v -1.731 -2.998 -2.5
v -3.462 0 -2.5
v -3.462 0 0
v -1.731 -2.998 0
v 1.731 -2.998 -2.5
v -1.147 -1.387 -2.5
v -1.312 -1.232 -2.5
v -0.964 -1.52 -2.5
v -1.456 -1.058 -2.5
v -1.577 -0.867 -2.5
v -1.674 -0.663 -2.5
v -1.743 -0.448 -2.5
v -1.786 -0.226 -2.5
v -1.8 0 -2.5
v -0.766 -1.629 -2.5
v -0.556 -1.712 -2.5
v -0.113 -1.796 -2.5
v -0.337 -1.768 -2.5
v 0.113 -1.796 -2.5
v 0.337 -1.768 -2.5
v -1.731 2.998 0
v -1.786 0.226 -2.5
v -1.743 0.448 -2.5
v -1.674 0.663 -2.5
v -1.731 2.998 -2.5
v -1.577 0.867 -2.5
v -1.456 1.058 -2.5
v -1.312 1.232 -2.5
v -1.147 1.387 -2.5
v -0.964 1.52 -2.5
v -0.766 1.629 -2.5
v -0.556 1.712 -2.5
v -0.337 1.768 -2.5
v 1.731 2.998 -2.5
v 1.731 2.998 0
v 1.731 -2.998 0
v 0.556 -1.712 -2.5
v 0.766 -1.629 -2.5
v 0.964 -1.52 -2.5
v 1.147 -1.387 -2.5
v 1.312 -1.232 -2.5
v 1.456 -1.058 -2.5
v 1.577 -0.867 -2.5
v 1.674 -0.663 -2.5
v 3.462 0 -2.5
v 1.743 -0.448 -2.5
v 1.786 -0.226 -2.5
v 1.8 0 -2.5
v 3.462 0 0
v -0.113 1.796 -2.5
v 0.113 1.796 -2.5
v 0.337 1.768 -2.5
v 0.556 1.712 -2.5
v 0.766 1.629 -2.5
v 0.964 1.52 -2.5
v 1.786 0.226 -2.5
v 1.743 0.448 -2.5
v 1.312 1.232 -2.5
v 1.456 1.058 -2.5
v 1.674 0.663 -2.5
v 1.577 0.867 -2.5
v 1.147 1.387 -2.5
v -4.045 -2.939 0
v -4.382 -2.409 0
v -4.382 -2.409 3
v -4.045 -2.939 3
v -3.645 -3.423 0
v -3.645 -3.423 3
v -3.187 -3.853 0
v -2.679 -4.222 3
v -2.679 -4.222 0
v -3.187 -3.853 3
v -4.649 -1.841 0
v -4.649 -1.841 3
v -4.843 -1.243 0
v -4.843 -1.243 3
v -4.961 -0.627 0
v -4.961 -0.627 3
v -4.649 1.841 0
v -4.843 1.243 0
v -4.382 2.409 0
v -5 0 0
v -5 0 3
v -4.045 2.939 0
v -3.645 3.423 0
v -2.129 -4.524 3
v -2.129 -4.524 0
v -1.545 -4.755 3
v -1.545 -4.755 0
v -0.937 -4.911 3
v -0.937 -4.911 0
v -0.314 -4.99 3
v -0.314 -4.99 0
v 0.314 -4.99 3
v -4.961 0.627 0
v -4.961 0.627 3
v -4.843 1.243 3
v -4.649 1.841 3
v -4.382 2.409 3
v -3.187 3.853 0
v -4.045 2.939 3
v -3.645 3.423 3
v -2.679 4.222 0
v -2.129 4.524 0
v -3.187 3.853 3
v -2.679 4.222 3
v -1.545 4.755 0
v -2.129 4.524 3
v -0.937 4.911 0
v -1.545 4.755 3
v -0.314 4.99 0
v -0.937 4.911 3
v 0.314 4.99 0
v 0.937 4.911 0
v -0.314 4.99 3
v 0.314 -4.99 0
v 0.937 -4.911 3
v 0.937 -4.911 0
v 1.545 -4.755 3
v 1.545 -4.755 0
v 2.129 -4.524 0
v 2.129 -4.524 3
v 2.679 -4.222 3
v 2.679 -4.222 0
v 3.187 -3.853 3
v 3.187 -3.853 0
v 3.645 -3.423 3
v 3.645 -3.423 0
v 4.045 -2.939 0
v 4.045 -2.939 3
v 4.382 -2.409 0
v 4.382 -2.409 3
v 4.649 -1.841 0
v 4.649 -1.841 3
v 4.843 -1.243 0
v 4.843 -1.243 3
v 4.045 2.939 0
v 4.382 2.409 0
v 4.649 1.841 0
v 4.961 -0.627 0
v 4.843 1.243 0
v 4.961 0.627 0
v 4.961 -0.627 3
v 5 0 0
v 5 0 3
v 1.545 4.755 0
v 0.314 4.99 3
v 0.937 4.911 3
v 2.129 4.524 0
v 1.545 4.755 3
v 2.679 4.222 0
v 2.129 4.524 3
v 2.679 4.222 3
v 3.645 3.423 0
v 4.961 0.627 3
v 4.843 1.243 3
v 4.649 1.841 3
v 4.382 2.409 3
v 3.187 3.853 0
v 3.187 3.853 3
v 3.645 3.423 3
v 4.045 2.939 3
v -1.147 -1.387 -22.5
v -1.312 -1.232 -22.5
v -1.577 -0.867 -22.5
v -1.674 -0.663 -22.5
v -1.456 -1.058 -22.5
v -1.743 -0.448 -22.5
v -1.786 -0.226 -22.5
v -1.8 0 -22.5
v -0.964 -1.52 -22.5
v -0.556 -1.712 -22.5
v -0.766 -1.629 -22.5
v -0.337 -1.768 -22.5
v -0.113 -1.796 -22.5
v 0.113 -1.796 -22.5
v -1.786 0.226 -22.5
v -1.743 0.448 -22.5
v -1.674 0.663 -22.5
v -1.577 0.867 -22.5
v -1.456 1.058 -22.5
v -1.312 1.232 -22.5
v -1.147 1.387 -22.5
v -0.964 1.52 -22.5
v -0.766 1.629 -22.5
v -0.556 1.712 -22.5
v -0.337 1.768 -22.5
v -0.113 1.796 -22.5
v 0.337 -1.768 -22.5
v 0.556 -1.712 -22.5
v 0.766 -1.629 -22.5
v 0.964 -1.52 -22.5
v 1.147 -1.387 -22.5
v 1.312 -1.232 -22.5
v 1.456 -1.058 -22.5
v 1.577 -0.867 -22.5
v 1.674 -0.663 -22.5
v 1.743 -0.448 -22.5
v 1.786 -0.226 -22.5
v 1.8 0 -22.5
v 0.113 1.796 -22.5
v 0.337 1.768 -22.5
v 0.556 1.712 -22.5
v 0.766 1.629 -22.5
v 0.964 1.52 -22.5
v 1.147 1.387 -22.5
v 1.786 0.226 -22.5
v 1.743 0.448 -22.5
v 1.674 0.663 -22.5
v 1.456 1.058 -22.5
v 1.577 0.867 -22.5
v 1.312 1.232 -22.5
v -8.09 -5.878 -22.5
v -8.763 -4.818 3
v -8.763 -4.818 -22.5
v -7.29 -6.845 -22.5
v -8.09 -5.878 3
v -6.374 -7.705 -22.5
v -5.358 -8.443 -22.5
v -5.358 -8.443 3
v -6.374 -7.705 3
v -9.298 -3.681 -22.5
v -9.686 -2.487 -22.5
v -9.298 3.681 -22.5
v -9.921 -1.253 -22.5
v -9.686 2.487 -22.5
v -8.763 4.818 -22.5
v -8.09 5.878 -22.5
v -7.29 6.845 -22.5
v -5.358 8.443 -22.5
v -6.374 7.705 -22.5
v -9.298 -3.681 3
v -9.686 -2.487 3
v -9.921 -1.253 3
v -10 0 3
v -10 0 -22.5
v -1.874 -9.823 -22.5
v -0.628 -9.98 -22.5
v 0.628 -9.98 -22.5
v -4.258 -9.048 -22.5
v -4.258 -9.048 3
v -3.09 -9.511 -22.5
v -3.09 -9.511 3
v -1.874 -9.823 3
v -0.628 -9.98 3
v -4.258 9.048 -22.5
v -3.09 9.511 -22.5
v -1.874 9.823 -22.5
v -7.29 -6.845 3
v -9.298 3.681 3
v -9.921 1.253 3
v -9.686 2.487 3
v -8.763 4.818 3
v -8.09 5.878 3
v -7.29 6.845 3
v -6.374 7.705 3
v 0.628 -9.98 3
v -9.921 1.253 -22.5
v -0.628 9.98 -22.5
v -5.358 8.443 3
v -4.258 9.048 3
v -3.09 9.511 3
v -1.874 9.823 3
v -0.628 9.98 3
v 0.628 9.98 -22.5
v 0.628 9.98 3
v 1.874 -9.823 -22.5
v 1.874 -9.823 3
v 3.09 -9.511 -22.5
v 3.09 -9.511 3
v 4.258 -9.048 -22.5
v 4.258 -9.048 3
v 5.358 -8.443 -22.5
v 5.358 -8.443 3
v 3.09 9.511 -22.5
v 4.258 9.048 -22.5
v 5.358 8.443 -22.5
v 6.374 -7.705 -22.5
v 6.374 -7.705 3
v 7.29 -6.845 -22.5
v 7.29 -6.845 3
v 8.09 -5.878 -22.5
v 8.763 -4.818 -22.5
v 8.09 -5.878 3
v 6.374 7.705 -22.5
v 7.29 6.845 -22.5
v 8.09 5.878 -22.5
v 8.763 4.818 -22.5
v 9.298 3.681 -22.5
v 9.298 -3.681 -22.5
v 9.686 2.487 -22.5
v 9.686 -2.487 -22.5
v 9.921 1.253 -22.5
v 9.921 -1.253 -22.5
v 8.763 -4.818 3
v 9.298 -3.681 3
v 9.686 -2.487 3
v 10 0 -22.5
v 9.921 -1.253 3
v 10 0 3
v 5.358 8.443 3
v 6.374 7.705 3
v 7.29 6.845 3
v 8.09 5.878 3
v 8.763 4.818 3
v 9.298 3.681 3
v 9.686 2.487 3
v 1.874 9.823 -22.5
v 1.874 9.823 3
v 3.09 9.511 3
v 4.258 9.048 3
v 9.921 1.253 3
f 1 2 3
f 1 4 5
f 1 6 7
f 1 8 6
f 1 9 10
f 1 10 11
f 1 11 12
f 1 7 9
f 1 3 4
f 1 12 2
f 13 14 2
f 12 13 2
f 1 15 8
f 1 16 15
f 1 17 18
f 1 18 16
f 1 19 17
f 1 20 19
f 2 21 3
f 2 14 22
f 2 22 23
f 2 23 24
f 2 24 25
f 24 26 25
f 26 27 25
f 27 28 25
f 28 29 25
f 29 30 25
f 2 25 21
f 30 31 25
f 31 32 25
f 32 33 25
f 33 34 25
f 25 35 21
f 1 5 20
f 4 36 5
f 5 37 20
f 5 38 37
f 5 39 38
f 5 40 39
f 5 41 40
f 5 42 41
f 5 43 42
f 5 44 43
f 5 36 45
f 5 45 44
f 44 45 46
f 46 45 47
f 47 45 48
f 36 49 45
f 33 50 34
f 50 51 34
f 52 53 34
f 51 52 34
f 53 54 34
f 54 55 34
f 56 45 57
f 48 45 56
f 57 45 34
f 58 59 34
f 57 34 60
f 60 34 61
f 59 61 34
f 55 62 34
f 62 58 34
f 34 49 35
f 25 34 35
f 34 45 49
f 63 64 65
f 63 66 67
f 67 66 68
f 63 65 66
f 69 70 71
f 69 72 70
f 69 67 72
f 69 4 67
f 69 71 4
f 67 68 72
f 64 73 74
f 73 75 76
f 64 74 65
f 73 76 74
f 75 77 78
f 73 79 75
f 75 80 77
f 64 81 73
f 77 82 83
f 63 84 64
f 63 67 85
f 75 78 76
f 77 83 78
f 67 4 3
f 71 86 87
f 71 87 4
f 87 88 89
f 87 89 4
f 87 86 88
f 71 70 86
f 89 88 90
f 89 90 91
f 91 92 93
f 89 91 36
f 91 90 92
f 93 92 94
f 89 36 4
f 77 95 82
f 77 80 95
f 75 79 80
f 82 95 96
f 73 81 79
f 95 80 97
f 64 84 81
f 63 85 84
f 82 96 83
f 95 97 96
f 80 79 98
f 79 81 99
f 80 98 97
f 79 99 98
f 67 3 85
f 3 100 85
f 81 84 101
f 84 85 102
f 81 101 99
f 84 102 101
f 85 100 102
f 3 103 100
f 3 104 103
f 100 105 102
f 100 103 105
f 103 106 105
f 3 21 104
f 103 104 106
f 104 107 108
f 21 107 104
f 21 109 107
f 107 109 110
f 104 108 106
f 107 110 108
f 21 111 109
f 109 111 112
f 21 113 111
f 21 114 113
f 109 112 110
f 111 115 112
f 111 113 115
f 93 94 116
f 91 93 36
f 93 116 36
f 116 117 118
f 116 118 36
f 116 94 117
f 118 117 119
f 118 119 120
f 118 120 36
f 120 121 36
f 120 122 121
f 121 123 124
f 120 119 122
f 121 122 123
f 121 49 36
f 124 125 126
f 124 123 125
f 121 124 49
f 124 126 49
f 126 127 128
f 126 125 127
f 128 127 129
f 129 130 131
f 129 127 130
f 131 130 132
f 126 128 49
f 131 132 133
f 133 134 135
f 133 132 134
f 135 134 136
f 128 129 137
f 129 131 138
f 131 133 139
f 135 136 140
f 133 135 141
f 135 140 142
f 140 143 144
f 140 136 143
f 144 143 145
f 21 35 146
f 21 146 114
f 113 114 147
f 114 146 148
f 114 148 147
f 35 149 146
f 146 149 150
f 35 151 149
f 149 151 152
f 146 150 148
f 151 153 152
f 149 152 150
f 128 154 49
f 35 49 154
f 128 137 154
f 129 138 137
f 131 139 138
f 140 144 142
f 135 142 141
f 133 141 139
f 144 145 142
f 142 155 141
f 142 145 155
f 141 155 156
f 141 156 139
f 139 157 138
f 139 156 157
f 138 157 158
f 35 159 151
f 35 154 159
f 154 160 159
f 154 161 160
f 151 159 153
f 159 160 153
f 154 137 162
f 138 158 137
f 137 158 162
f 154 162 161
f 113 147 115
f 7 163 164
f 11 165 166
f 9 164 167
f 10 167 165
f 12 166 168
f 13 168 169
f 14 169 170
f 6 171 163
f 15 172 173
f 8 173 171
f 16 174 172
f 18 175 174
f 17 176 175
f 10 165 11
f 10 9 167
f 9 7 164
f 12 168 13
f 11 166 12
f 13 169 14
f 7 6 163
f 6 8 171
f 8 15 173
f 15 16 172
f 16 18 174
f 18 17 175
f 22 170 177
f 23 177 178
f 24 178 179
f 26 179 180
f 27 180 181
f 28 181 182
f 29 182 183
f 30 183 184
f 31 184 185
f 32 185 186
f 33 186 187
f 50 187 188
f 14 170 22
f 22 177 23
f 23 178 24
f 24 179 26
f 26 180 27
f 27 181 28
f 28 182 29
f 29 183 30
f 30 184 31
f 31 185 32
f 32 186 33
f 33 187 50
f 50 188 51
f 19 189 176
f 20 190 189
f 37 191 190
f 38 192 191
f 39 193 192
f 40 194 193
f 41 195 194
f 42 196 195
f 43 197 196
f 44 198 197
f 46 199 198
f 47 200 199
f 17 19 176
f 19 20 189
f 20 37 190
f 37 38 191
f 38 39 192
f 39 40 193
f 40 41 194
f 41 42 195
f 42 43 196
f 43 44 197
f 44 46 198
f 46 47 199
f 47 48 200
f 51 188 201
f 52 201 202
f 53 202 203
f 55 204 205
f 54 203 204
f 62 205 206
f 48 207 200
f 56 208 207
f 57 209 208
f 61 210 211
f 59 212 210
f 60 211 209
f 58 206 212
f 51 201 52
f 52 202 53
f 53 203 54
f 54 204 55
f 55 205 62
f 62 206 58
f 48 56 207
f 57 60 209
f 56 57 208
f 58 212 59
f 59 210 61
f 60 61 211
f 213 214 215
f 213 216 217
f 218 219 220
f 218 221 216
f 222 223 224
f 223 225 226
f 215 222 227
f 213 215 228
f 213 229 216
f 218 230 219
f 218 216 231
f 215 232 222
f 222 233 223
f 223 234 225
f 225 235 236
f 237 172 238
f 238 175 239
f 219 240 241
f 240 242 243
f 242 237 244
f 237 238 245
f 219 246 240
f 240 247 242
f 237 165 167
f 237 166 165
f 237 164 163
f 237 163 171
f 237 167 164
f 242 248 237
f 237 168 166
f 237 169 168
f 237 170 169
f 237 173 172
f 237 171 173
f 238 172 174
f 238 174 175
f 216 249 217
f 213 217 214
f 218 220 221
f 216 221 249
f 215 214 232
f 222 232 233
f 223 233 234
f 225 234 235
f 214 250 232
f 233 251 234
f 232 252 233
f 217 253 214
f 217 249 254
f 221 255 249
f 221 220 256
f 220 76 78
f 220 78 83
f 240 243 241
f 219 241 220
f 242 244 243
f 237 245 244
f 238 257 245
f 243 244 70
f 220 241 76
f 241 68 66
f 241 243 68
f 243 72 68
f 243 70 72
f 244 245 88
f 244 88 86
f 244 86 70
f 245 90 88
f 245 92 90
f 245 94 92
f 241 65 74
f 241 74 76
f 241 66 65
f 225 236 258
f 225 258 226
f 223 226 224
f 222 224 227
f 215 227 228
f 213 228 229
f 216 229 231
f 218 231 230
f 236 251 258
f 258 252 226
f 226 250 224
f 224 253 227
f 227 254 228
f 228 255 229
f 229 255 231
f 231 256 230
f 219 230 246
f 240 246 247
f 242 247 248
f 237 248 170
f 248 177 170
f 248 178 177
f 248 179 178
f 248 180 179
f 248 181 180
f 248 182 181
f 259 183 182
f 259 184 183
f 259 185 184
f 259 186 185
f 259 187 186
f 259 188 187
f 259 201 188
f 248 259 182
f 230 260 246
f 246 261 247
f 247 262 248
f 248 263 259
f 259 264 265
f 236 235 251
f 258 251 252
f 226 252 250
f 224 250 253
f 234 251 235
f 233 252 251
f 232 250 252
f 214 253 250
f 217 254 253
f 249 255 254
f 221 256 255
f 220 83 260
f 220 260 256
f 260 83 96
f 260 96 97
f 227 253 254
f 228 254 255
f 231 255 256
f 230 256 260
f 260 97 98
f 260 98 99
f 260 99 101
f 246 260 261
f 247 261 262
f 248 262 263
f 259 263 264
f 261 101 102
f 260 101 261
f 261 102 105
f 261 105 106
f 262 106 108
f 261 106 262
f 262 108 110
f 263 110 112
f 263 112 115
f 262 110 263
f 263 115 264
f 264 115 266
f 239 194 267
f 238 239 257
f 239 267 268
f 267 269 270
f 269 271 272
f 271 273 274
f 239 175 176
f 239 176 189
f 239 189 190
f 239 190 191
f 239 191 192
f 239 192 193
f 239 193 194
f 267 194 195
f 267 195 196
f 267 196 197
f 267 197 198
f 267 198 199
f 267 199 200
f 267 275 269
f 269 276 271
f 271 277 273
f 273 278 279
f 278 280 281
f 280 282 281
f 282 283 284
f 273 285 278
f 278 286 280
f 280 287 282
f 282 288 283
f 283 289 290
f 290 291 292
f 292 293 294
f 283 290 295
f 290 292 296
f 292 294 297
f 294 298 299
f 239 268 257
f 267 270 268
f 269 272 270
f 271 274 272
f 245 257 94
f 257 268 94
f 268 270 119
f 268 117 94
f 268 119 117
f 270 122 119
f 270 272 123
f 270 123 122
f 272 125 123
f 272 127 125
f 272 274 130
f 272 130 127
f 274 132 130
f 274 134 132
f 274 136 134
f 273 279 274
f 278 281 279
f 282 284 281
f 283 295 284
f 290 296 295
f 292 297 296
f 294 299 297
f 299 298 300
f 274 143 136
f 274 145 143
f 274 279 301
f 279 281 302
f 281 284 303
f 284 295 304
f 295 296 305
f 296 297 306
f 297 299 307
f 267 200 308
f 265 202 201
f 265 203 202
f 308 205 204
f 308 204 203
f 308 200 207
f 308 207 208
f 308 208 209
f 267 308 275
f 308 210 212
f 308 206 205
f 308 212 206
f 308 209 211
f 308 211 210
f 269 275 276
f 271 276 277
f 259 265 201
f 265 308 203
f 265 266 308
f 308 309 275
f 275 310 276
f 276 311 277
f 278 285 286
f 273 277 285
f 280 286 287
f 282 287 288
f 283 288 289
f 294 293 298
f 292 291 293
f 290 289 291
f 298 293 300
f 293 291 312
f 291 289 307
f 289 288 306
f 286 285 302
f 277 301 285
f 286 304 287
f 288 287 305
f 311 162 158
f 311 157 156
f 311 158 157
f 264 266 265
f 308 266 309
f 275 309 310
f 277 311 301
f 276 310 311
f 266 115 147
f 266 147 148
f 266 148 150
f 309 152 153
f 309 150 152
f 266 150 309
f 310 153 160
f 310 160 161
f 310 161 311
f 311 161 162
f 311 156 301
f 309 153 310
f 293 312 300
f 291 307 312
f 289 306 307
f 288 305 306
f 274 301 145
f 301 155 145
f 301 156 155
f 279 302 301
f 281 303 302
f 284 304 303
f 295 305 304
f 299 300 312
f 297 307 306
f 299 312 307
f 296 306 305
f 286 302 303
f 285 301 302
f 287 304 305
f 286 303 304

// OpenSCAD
$fn = 50;

difference() {
	union() {
		translate(v = [0, 0, -22.5]) {
			cylinder(h = 25.5, r = 10.0);
		}
	}
	union() {
		translate(v = [0, 0, 0]) {
			rotate(a = [0, 0, 0]) {
				difference() {
					union() {
						translate(v = [0, 0, -2.5]) {
							linear_extrude(height = 2.5) {
								polygon(points = [[3.4619999999999997, 0.0], [1.7310000000000003, 2.9981799479017264], [-1.7309999999999992, 2.9981799479017264], [-3.4619999999999997, 4.2397272186481365e-16], [-1.7310000000000014, -2.998179947901726], [1.7309999999999977, -2.9981799479017277]]);
							}
						}
					}
					union();
				}
			}
		}
		#cylinder(h = 3, r = 5.0);
		#translate(v = [0, 0, -100.0]) {
			cylinder(h = 200, r = 1.8);
		}
	}
}
